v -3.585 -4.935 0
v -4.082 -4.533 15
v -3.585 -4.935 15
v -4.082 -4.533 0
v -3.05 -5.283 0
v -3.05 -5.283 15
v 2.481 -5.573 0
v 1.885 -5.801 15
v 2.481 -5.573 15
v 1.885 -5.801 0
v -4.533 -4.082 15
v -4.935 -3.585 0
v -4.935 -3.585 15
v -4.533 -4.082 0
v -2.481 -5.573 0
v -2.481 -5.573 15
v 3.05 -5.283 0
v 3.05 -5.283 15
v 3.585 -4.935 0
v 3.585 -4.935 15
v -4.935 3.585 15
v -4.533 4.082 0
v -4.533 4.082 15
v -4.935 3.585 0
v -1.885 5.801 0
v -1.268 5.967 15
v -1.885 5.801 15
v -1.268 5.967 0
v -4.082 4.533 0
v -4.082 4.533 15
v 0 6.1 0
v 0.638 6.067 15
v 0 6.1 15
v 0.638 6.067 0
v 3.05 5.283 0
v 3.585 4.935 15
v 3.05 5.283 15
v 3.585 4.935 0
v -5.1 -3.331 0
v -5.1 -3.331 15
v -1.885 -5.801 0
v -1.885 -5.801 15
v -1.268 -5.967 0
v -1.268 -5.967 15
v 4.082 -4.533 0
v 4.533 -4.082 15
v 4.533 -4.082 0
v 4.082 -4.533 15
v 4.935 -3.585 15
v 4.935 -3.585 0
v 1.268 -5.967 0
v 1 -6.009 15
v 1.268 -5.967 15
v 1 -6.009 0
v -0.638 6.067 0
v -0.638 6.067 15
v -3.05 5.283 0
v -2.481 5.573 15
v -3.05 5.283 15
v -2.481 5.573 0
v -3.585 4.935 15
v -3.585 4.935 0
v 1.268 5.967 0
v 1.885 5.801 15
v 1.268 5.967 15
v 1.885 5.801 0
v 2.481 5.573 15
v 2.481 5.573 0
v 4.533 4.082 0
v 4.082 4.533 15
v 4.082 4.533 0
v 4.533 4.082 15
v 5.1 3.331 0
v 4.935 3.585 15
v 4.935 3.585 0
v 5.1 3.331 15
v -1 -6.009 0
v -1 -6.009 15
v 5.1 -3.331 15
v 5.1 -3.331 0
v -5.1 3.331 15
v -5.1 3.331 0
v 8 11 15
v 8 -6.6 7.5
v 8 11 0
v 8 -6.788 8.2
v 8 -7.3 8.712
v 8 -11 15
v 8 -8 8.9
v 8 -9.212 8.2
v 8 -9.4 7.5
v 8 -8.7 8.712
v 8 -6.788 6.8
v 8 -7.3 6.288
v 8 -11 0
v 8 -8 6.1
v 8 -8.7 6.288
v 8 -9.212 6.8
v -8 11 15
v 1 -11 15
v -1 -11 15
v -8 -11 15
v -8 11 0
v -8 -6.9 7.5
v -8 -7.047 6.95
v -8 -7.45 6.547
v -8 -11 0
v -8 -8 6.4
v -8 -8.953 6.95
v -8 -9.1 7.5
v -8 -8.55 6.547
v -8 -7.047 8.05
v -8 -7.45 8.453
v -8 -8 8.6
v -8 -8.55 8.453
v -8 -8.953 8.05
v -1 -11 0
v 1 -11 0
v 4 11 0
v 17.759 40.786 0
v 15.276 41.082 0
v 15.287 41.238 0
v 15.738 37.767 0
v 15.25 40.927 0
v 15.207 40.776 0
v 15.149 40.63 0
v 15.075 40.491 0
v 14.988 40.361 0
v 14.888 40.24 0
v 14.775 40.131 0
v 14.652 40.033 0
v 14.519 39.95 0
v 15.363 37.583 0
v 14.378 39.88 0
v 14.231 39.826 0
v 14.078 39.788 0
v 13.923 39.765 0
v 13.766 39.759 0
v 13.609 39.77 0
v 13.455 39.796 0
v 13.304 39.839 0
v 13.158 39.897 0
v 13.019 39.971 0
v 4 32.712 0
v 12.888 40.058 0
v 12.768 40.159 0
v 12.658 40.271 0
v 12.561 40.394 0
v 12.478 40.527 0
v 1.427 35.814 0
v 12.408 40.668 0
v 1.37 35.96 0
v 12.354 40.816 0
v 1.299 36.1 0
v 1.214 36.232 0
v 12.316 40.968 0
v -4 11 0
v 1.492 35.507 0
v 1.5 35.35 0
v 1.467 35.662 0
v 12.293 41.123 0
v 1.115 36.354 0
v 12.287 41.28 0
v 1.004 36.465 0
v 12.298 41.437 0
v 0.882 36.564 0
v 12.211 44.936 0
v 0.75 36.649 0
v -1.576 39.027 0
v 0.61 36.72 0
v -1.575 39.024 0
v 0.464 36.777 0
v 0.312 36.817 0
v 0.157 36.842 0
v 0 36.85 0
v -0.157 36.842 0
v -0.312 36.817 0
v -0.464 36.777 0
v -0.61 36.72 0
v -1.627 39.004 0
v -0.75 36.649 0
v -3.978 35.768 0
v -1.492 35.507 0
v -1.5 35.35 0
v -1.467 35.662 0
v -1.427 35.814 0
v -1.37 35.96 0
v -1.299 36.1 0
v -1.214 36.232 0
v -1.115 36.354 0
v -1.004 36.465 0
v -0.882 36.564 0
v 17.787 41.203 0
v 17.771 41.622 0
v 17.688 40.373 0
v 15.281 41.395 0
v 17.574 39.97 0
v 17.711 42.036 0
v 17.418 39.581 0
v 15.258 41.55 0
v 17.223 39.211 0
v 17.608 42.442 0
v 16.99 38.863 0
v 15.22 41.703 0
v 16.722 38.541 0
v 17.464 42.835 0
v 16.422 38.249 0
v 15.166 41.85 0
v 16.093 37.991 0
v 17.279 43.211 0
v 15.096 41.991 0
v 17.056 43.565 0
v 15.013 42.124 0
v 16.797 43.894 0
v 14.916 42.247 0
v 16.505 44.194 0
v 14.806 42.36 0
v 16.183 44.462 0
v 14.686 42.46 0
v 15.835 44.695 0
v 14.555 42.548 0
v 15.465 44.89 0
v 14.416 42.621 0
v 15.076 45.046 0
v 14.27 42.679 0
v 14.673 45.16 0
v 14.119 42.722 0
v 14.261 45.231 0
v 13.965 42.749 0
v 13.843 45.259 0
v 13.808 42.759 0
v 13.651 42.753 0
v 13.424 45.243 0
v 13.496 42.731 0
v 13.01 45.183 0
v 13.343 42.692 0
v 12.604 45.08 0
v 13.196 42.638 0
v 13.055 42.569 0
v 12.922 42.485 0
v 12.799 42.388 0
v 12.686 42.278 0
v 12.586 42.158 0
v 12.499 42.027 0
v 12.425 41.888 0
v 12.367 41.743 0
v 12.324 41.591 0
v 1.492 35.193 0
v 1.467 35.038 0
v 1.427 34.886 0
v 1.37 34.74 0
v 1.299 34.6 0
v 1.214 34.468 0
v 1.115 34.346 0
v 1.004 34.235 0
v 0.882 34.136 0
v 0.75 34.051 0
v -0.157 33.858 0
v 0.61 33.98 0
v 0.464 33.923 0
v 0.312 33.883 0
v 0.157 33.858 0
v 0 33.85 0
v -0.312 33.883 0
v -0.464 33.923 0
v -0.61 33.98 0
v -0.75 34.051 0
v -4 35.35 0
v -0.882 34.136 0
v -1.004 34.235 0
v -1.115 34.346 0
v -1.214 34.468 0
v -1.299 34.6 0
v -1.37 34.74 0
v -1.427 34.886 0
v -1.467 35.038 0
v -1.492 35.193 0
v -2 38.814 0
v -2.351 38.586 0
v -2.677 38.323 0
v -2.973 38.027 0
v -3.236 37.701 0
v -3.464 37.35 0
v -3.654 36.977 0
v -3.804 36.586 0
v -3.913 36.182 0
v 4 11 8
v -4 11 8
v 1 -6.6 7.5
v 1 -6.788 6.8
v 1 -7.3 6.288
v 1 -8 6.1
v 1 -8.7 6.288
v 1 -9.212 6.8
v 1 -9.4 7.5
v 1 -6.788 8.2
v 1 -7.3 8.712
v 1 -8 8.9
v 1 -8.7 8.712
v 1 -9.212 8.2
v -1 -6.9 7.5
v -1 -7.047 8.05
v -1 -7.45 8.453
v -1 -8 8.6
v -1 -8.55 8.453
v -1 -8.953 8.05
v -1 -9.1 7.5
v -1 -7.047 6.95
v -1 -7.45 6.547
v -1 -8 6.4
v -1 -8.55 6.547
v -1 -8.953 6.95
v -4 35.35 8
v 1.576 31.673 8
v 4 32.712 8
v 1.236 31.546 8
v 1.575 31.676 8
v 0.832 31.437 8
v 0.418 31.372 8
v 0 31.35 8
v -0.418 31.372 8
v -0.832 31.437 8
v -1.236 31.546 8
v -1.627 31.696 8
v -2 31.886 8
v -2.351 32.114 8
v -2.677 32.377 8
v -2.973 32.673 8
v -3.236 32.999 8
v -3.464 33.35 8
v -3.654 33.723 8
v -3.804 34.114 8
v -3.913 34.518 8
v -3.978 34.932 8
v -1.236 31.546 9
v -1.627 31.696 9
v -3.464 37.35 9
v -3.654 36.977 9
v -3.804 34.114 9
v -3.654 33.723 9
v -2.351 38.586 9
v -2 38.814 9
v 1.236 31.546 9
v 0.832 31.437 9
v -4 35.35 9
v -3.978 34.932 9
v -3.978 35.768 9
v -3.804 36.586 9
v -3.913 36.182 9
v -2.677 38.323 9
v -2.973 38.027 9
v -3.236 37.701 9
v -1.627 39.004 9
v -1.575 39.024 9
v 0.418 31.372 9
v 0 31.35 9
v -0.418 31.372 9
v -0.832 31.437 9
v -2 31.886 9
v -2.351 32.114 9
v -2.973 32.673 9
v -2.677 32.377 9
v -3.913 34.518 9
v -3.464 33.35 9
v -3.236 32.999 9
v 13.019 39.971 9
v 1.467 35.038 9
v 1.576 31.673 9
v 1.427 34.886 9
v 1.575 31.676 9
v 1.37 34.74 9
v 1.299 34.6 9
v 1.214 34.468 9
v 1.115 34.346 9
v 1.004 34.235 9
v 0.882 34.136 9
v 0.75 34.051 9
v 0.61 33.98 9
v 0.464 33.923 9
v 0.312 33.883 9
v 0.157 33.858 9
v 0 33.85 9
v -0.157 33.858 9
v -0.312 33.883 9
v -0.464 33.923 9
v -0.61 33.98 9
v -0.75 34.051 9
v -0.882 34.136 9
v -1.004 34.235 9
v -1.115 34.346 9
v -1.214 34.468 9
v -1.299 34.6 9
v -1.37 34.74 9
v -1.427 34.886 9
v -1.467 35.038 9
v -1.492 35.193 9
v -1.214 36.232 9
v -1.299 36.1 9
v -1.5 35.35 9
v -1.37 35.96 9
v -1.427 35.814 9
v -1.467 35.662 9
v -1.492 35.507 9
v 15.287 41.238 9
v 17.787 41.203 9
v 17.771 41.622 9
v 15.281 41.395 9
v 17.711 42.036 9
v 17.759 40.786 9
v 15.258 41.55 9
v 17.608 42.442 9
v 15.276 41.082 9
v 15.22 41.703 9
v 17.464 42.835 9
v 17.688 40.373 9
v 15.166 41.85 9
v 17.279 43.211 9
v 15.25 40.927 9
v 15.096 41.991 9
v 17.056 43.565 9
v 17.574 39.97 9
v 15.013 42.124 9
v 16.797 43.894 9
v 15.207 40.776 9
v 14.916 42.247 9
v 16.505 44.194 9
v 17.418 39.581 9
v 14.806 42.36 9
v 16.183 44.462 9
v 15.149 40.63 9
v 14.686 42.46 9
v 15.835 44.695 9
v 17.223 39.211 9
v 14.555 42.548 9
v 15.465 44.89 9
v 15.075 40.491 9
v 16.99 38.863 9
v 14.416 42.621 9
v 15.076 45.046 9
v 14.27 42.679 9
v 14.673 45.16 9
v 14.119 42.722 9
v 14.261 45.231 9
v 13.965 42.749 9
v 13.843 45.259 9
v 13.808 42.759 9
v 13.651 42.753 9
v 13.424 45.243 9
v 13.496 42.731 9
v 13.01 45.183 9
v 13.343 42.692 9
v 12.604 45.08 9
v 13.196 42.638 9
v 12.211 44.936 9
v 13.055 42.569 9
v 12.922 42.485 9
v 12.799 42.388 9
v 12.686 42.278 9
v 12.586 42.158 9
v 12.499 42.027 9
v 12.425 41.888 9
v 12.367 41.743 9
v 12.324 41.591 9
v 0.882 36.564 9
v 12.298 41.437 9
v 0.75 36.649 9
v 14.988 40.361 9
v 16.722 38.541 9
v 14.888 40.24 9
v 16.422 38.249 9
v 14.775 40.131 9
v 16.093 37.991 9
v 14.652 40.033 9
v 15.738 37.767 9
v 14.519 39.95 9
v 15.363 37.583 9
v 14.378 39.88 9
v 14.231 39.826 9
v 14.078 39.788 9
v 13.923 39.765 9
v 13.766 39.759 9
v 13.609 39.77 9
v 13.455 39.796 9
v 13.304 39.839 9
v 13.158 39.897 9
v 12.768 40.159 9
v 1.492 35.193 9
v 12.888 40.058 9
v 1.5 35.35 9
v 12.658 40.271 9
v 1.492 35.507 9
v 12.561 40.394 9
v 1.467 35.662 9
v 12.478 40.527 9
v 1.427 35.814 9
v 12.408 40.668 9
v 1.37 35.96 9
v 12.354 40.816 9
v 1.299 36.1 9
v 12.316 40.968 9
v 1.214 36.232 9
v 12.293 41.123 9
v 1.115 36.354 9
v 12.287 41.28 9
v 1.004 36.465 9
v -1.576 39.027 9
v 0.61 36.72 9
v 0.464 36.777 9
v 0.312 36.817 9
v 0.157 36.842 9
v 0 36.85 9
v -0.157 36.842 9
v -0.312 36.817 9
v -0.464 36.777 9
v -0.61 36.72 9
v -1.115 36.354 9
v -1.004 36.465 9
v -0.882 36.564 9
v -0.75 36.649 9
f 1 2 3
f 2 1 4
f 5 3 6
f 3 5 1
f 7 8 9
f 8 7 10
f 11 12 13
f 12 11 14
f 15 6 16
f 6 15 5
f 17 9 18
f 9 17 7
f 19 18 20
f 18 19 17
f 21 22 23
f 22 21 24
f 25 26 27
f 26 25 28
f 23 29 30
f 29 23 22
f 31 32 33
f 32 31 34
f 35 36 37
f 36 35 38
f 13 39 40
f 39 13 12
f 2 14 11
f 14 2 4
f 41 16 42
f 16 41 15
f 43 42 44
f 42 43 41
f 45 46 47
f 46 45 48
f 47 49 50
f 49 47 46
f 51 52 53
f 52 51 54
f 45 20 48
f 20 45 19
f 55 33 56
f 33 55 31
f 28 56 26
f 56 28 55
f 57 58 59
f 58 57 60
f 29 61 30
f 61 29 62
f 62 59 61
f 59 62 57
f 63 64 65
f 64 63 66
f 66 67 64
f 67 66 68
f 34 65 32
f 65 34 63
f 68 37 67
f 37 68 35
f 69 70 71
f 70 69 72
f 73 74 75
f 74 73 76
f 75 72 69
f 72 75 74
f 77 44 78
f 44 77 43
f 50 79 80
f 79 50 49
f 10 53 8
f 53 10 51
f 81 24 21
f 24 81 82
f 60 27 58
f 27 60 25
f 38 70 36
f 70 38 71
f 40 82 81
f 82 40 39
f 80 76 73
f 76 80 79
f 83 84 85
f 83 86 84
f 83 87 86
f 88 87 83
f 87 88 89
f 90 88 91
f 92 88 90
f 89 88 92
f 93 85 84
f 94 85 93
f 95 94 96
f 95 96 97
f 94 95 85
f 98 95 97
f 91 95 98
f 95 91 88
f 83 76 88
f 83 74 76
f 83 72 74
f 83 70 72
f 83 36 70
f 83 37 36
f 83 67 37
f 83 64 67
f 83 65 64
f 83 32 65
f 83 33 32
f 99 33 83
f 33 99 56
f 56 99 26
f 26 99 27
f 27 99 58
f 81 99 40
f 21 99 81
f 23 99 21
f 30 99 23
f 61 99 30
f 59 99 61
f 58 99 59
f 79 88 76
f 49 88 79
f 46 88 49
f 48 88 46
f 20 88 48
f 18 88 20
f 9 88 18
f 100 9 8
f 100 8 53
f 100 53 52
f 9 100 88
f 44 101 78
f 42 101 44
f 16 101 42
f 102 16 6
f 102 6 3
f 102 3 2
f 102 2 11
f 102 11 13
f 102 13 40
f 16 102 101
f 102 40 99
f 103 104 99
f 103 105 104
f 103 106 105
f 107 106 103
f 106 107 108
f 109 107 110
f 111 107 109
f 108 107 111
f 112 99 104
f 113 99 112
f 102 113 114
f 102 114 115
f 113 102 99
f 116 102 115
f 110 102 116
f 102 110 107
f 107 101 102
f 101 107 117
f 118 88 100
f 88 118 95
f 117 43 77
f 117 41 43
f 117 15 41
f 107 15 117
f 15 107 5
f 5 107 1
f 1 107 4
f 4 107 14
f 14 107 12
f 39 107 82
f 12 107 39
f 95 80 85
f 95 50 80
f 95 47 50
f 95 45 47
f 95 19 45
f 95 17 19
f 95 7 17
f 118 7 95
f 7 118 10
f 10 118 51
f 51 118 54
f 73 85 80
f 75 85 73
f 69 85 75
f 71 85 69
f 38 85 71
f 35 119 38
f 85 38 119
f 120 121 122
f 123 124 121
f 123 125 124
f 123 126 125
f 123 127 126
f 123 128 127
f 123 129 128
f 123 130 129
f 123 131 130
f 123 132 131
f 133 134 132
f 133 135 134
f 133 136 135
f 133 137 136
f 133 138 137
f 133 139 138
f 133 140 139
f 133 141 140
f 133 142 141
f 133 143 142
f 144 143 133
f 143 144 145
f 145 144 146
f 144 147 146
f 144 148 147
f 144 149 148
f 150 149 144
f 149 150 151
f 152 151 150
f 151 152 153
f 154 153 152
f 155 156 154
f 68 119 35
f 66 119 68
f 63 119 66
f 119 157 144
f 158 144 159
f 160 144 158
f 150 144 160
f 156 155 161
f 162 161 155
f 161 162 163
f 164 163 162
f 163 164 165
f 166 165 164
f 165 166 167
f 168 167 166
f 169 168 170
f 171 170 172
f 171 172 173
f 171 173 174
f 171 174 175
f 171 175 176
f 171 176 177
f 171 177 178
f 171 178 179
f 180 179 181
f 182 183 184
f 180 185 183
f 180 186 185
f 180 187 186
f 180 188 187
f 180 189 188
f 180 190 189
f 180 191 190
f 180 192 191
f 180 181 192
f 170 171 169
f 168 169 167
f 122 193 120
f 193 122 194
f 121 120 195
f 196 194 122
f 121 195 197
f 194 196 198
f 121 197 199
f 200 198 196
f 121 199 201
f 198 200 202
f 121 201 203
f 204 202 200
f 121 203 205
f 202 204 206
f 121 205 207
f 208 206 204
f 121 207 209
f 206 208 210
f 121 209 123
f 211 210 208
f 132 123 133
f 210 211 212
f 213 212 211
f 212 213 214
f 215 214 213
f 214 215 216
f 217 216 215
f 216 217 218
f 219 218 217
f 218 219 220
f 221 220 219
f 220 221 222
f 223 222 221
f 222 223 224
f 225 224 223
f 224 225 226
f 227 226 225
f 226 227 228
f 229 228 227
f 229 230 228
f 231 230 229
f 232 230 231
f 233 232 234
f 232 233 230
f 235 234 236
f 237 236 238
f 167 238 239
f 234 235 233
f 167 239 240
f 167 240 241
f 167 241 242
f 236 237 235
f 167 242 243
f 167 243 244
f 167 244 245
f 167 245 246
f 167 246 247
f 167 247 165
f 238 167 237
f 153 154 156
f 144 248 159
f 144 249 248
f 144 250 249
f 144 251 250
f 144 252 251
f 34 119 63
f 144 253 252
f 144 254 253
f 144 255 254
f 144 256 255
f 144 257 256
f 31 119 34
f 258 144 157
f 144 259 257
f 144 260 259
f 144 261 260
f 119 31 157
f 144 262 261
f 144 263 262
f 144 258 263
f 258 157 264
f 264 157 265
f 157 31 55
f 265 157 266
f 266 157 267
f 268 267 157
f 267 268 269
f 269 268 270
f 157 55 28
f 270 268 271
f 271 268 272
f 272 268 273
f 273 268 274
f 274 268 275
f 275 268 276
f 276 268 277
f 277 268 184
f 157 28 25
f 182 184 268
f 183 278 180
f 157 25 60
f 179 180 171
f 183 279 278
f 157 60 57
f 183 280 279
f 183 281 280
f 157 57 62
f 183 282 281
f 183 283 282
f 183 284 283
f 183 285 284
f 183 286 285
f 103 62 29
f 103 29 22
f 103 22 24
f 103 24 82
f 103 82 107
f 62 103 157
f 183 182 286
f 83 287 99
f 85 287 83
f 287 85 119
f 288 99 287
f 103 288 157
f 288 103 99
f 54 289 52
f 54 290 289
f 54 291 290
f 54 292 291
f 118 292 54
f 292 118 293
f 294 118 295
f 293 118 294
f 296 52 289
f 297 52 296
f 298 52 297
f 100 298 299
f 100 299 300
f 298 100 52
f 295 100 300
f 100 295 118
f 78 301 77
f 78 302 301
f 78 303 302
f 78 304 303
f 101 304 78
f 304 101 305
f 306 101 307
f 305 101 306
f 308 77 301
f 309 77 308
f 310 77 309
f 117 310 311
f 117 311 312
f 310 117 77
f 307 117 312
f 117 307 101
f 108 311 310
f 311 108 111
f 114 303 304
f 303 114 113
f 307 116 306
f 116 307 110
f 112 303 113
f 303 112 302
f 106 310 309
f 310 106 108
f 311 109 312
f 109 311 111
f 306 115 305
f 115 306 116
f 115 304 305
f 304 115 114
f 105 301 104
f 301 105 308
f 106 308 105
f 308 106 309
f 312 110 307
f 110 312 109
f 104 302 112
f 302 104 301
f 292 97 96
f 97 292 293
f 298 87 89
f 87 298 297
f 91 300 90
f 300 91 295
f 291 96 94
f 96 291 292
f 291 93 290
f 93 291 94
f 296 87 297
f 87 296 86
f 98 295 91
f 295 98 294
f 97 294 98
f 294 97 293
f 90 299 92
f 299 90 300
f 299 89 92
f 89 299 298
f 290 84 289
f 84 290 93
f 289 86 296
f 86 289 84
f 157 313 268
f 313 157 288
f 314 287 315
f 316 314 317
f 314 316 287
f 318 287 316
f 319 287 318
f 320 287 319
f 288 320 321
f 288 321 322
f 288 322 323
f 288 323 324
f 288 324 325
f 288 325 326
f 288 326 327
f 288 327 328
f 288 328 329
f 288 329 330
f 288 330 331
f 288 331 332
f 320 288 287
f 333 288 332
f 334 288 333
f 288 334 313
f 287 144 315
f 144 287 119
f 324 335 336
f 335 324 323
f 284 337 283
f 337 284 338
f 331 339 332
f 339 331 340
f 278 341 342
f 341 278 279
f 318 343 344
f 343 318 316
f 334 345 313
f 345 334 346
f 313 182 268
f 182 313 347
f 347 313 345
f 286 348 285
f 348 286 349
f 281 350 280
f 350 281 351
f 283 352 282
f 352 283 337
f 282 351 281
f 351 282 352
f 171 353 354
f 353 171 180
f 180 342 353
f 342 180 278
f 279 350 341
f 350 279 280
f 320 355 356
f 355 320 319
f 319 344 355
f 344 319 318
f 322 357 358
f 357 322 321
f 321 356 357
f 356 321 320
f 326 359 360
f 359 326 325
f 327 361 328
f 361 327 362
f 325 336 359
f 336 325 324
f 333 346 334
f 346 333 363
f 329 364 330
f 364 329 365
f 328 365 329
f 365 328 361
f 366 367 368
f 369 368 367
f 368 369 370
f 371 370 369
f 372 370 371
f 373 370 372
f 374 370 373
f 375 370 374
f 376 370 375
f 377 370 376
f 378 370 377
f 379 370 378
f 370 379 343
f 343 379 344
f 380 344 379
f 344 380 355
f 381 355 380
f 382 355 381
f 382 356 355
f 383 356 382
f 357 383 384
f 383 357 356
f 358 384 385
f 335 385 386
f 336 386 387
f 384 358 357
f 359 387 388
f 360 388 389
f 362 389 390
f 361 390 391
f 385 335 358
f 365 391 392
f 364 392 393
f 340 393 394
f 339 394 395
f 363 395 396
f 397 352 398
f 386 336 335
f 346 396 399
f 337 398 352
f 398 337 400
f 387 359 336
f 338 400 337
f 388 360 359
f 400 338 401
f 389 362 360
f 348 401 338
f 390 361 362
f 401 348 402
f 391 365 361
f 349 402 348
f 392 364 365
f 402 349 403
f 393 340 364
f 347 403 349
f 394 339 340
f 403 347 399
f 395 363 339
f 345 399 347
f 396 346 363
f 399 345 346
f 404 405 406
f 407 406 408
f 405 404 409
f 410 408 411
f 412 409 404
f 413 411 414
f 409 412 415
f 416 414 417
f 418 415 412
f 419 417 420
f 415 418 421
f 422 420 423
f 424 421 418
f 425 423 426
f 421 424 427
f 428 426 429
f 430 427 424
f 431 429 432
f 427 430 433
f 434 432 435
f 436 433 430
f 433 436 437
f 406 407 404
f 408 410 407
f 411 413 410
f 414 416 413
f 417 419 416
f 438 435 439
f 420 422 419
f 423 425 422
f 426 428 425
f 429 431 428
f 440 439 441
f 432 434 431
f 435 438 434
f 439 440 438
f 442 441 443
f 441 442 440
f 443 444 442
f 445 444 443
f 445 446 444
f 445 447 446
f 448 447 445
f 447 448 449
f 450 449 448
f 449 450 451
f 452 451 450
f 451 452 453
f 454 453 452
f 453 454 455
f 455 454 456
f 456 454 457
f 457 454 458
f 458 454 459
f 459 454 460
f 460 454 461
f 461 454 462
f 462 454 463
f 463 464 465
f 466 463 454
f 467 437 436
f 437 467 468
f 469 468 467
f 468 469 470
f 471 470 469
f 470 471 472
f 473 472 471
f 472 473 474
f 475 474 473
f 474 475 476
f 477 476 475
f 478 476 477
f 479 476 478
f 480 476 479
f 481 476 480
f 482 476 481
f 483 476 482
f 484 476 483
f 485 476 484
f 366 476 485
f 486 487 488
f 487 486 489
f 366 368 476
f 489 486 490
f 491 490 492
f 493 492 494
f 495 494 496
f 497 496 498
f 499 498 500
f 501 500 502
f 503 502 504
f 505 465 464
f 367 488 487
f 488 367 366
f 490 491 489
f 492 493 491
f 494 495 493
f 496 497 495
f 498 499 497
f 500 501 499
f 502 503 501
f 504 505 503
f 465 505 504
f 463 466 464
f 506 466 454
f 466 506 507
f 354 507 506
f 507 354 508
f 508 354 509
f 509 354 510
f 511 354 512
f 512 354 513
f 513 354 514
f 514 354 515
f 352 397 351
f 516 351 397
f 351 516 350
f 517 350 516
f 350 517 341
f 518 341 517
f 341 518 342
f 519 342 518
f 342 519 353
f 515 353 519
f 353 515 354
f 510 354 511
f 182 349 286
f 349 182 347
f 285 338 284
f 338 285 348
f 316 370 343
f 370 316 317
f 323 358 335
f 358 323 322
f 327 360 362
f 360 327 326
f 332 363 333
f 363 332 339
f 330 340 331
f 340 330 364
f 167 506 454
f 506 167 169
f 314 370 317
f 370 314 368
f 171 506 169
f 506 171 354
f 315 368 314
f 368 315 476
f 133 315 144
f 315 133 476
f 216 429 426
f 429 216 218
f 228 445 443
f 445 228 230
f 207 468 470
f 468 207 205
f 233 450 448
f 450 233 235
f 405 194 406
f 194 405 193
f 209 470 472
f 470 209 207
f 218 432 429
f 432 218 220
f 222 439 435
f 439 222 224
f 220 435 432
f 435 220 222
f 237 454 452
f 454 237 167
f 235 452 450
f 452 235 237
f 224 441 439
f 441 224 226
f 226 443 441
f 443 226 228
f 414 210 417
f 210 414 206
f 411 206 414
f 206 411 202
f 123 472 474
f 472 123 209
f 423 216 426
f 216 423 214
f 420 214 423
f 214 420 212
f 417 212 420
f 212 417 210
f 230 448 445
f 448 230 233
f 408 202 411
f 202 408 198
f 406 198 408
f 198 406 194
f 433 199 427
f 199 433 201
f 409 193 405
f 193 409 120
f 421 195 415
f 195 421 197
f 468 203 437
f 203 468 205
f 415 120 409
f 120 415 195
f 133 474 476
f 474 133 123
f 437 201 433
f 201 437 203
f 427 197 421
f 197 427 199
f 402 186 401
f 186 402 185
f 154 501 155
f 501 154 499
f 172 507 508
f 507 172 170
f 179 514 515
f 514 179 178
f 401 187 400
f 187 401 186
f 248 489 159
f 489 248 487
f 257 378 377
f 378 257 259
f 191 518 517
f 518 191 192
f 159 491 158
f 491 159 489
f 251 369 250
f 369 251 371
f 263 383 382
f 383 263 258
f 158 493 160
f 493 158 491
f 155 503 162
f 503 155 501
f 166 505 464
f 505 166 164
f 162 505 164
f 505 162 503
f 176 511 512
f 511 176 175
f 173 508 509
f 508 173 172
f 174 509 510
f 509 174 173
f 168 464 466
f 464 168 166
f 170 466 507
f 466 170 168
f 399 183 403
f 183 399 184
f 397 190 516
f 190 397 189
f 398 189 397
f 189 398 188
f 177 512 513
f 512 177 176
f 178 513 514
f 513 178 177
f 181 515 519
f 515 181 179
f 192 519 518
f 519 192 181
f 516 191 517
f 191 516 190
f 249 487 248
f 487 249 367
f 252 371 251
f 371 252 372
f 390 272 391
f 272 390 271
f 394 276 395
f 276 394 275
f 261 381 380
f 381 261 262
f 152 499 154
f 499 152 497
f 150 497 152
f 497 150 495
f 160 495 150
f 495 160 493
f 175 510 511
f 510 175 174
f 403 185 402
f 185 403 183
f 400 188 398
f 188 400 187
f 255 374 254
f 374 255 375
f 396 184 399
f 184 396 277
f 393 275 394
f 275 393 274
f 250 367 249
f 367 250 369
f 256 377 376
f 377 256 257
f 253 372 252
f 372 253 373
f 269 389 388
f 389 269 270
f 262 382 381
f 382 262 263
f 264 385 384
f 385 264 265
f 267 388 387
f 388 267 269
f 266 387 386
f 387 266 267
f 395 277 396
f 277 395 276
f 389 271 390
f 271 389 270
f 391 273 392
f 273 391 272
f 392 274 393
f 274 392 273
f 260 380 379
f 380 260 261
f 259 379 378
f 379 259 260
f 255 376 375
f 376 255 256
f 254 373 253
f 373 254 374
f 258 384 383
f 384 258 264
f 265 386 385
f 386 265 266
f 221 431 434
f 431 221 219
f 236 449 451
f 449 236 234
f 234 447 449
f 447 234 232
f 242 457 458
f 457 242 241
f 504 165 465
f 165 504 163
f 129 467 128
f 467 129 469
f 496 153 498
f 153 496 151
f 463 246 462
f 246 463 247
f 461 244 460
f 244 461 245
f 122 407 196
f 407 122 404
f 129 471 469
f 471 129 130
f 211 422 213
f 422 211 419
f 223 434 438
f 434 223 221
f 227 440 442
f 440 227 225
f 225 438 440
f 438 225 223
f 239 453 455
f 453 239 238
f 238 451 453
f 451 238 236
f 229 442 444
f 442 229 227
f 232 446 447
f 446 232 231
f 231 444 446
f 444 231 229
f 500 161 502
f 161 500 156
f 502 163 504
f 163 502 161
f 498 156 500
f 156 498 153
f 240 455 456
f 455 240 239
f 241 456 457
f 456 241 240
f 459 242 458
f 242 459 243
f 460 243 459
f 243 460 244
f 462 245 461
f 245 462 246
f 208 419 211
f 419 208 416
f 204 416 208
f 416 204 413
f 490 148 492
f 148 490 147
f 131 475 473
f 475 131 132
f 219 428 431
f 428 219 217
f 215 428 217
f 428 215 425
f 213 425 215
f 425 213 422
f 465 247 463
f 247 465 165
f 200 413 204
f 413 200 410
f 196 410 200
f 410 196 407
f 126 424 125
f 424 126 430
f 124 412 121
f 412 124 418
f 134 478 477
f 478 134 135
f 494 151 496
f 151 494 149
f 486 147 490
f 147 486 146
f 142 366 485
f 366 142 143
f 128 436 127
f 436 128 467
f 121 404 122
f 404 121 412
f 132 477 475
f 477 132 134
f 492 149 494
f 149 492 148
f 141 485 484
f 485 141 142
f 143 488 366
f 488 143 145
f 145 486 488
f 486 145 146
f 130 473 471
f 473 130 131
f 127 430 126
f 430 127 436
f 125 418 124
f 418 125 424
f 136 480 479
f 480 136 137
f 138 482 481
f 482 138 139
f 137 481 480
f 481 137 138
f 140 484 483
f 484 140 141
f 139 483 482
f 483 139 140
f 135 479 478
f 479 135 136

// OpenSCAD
rotate([0,0,180])wheel_bracket();

difference(){
union(){
translate([-4,10,0])cube([8,25.35,8]);
translate([0,35.35,0])cylinder(d=8,h=9,$fn=60);
translate([0,35.35,0])rotate([0,0,23.2])
translate([0,-4,0])cube([15,8,9]);
translate([0,35.35,0])rotate([0,0,23.2])
translate([15,0,0])cylinder(d=8,h=9,$fn=60);
}
translate([0,35.35,-1])cylinder(d=3,h=11,$fn=60);
translate([0,35.35,-1])
rotate([0,0,23.2])translate([15,0,0])
cylinder(d=3,h=11,$fn=60);
}

module wheel_bracket(){
    difference(){
translate([-8,-11,0])cube([16,22,15]);
difference(){
    translate([0,0,-1])cylinder(d=12.2,h=25,$fn=60);
    translate([6.1,0,-1])cube([2,16,40],center=true);
    translate([-6.1,0,-1])cube([2,16,40],center=true);
}
translate([-1,0,-1])cube([2,22,25]);
translate([-9,8,7.5])rotate([0,90,0])
cylinder(d=2.2,h=21,$fn=12);
translate([-9,8,7.5])rotate([0,90,0])
cylinder(d=2.8,h=10,$fn=12);
}
}
